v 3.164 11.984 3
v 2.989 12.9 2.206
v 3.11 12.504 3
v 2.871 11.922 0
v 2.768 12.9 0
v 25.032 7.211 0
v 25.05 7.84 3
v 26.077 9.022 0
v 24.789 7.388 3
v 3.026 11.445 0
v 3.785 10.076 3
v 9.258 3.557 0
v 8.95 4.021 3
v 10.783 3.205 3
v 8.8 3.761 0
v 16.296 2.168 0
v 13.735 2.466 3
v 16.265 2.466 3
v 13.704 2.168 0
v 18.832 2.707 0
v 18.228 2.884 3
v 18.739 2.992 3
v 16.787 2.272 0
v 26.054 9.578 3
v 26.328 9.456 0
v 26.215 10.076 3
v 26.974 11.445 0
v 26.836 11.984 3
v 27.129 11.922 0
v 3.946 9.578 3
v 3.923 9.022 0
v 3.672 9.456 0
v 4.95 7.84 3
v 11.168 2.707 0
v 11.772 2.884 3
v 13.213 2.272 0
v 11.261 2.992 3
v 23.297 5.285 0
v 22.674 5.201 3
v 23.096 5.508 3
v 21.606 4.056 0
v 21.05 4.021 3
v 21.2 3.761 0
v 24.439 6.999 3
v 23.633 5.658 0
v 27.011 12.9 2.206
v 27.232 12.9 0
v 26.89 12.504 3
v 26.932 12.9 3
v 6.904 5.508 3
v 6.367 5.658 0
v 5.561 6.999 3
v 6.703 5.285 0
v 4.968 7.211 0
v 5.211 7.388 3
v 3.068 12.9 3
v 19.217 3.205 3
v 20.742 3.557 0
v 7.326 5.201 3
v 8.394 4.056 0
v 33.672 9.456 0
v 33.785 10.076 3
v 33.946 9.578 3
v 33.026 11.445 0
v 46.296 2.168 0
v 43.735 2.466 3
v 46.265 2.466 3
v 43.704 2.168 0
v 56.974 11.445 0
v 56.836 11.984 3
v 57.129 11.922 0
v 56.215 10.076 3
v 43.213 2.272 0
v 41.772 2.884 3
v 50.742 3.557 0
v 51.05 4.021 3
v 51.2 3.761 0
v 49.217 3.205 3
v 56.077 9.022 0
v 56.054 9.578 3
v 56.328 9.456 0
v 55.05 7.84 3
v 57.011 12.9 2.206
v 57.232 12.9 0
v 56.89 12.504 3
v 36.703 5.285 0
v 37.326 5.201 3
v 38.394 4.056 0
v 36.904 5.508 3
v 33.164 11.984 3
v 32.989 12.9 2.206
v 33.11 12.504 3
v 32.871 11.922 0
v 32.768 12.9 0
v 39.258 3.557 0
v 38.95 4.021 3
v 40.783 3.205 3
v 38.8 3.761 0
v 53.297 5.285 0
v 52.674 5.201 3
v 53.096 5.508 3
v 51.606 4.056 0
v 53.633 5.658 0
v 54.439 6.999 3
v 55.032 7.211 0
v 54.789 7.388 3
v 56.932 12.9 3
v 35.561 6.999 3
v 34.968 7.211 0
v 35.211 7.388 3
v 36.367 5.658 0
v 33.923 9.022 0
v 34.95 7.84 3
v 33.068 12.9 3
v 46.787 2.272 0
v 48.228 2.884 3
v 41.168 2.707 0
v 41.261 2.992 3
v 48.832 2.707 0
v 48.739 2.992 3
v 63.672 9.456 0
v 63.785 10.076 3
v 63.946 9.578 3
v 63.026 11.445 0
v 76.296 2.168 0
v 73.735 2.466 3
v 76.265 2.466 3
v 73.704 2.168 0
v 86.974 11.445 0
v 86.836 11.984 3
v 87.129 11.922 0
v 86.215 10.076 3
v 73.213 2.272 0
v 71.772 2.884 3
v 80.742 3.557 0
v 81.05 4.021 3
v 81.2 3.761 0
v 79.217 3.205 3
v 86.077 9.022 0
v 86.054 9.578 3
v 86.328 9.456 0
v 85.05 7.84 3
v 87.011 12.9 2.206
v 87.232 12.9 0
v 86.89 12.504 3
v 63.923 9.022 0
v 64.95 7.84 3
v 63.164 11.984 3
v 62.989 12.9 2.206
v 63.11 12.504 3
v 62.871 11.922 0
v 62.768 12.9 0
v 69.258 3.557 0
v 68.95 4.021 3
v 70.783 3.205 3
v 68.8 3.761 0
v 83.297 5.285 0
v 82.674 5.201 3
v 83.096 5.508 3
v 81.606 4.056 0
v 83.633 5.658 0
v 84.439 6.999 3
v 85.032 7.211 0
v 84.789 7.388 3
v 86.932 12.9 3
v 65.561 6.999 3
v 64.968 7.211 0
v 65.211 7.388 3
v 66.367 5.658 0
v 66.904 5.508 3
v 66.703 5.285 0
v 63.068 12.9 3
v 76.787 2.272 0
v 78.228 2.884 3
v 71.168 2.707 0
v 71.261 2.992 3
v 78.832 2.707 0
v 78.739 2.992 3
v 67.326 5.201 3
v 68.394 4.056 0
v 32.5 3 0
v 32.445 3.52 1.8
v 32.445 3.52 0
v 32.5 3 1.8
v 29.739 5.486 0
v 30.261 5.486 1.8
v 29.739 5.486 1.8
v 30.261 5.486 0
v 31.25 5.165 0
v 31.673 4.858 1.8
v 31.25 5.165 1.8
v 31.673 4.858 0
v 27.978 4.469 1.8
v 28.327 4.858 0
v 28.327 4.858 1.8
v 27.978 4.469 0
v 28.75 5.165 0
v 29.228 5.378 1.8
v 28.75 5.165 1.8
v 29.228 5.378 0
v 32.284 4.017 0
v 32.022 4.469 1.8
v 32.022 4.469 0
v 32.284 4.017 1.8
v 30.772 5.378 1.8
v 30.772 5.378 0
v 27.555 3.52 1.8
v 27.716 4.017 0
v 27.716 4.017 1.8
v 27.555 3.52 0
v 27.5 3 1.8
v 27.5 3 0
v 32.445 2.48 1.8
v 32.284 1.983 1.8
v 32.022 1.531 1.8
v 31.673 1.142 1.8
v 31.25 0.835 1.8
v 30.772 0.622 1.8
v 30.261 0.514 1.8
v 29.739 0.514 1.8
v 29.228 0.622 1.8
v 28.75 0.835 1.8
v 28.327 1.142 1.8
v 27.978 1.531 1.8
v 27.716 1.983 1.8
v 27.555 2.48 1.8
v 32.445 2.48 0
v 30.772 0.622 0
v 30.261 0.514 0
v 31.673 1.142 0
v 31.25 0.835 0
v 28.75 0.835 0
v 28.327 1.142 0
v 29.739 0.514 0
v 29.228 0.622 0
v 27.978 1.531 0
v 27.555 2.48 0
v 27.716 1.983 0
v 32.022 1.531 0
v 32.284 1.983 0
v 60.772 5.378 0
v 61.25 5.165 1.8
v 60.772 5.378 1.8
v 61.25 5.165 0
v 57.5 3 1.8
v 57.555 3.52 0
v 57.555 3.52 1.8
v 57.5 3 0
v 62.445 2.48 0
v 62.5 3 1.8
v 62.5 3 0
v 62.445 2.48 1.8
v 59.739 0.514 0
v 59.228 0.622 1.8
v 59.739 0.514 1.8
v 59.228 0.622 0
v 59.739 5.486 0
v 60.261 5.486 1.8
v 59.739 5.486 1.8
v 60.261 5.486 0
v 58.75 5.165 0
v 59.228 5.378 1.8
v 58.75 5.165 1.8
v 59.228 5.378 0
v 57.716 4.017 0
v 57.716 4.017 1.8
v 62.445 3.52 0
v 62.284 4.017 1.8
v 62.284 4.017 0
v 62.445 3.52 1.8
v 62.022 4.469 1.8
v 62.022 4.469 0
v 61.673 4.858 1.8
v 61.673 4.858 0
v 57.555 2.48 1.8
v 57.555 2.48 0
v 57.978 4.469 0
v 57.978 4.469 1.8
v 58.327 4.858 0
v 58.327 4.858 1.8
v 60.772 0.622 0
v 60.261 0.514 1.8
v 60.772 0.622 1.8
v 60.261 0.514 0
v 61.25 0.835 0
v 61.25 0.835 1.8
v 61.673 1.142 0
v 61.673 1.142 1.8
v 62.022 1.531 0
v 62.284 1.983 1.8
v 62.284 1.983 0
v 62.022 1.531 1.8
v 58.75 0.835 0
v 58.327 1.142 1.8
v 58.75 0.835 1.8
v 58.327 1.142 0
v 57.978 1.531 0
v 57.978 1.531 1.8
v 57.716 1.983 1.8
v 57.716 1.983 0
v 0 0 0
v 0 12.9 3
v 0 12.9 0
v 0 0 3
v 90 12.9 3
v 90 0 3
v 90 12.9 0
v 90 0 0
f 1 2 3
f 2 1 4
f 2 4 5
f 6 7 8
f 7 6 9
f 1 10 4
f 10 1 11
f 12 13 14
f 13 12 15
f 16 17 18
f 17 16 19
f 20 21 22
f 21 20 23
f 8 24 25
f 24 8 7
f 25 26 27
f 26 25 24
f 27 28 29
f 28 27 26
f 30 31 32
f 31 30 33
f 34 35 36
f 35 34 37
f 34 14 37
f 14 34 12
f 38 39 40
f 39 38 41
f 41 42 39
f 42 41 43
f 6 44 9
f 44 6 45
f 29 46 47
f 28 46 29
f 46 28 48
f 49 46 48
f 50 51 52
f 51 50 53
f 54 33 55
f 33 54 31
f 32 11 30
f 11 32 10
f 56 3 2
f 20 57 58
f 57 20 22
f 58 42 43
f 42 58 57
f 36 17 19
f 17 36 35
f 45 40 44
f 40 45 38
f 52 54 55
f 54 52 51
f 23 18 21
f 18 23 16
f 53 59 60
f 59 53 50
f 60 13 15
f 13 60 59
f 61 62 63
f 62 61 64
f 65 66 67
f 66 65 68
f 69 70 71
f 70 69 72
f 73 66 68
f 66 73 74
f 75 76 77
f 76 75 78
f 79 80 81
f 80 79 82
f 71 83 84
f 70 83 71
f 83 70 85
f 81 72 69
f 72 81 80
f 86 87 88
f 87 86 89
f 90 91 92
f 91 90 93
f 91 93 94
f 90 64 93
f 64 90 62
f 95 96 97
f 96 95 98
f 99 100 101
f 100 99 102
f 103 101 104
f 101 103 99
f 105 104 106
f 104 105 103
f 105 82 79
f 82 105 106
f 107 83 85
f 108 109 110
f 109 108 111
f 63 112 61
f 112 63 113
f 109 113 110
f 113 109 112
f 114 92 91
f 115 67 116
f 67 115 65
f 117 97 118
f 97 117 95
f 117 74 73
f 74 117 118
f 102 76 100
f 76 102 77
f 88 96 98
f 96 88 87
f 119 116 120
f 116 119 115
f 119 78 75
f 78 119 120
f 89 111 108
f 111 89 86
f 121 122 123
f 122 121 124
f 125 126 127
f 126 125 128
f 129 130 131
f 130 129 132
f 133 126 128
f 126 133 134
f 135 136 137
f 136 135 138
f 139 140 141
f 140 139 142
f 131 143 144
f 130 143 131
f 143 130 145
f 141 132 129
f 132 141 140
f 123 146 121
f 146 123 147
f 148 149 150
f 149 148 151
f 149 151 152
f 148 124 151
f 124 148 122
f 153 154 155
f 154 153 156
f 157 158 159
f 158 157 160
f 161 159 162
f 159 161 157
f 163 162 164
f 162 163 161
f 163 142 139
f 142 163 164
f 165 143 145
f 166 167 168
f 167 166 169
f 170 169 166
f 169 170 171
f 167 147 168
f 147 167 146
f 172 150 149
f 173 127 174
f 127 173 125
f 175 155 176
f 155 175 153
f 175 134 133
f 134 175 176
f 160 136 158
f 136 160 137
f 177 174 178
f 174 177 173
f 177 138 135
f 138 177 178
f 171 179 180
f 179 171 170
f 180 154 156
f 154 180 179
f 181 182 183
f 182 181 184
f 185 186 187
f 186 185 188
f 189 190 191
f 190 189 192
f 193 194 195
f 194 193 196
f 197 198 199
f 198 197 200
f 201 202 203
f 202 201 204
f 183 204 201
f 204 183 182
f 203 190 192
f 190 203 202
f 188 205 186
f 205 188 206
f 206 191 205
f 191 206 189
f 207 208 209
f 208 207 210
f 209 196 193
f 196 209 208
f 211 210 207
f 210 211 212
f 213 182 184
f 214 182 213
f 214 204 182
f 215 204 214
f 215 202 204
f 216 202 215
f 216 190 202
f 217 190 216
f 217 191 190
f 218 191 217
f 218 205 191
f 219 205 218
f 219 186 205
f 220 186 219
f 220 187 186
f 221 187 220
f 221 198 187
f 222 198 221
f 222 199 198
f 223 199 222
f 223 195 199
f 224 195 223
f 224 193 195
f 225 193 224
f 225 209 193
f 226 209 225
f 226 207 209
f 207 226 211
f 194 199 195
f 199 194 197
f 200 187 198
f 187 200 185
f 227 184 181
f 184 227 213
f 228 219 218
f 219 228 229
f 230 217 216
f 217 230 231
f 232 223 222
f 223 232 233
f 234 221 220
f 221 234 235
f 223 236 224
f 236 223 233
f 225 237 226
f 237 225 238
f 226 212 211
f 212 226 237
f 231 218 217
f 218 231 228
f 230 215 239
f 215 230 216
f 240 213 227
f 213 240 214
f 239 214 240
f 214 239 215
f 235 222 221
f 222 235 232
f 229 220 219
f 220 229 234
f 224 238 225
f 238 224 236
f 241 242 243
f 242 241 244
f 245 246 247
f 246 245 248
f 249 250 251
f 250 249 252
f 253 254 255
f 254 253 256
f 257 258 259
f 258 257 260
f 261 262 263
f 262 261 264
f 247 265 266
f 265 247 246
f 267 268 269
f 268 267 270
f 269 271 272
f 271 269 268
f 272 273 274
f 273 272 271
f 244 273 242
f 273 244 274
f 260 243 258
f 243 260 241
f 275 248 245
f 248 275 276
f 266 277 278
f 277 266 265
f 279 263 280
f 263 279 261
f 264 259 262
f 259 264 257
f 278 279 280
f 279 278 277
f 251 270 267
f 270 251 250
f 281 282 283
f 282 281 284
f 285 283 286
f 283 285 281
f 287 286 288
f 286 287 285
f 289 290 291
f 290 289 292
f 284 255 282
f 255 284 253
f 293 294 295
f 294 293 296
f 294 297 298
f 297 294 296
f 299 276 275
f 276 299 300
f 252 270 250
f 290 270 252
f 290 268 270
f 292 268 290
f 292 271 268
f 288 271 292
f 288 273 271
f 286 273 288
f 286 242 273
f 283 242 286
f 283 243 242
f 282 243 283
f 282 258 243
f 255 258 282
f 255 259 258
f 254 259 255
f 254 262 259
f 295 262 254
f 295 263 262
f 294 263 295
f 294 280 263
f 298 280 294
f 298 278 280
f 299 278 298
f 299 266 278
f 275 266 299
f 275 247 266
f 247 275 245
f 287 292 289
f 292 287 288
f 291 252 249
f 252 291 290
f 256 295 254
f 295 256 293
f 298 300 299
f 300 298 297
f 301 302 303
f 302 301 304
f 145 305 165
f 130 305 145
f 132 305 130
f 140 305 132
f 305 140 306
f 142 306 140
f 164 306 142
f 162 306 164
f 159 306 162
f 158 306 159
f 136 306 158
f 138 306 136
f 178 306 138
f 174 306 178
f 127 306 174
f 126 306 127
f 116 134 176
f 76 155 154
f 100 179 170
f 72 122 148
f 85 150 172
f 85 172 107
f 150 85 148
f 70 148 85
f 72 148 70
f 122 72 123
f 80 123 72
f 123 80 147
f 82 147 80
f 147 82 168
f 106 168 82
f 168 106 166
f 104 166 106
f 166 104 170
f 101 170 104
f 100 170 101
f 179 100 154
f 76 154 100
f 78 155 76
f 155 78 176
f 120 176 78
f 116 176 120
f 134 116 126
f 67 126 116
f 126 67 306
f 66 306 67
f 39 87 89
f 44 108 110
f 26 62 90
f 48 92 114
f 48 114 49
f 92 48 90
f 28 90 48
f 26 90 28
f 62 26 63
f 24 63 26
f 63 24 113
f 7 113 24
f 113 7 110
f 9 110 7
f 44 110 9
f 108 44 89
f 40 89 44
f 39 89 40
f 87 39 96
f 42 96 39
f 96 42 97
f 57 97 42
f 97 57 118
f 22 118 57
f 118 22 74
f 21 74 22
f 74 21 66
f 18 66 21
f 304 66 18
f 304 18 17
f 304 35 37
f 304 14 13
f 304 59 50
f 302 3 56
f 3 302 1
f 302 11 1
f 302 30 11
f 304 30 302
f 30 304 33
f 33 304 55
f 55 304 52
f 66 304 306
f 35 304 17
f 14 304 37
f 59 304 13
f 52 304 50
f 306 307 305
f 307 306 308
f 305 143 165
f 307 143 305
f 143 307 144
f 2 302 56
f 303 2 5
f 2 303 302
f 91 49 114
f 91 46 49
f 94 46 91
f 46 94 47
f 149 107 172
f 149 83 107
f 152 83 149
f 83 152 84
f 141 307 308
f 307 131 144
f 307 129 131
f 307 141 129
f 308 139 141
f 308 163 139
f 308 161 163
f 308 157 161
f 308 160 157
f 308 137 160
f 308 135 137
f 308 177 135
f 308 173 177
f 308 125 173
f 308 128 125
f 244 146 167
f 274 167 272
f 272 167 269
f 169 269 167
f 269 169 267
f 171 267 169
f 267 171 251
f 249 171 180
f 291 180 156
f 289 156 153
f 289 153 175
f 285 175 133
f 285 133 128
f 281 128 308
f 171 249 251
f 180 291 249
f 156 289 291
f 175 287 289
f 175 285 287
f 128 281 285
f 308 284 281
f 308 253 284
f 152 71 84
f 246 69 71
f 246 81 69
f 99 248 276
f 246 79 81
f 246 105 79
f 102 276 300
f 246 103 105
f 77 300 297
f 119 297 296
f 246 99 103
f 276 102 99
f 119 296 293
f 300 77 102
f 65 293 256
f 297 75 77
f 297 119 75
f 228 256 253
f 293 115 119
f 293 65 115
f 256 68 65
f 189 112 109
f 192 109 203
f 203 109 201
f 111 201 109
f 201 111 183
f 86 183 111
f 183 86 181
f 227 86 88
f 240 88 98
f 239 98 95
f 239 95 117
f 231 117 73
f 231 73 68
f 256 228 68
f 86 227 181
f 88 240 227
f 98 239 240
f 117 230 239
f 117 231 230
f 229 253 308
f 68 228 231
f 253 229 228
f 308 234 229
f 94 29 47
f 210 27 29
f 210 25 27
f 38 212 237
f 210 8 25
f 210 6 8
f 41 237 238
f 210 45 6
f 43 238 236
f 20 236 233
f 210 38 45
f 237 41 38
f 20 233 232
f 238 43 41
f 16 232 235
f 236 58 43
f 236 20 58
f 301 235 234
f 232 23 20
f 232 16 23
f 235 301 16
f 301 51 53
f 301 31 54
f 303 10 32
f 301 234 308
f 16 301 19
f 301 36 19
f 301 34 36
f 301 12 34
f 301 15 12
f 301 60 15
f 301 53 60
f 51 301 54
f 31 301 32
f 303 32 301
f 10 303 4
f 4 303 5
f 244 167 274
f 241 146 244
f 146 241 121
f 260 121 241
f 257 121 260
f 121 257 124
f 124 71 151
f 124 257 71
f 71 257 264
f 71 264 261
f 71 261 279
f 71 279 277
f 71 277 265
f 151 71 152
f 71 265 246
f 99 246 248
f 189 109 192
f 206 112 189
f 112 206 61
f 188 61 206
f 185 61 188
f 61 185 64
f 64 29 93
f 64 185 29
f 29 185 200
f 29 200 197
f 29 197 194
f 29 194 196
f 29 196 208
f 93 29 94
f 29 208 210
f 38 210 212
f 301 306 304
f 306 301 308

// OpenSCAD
$fs = 0.5; // This takes a long long time to compute, but much nicer
base_length=90;
base_depth=56;

thickness=3;

base_bottom=25/2;
base_top=24/2;

magnet_radius=5/2;
magnet_thickness=2;

difference(){
    // base plate
    cube([base_length, base_depth/4-1.1, thickness]);
    
    intersection(){
    // front row
    translate([-1, -1, -1])
        cube([base_length + 2, base_depth/4, thickness+2]);
    // minis
    for(x=[0:2])
        translate([2.5+base_bottom+5*x+x*2*base_bottom, base_bottom+2,-1])
            cylinder(r1=base_bottom, r2=base_top, h=thickness+2);    
    }
    // magnets
    for(x=[1:2])
        translate([5*x+x*2*base_bottom,3,-0.2])
            cylinder(r=magnet_radius, h=magnet_thickness);
}
